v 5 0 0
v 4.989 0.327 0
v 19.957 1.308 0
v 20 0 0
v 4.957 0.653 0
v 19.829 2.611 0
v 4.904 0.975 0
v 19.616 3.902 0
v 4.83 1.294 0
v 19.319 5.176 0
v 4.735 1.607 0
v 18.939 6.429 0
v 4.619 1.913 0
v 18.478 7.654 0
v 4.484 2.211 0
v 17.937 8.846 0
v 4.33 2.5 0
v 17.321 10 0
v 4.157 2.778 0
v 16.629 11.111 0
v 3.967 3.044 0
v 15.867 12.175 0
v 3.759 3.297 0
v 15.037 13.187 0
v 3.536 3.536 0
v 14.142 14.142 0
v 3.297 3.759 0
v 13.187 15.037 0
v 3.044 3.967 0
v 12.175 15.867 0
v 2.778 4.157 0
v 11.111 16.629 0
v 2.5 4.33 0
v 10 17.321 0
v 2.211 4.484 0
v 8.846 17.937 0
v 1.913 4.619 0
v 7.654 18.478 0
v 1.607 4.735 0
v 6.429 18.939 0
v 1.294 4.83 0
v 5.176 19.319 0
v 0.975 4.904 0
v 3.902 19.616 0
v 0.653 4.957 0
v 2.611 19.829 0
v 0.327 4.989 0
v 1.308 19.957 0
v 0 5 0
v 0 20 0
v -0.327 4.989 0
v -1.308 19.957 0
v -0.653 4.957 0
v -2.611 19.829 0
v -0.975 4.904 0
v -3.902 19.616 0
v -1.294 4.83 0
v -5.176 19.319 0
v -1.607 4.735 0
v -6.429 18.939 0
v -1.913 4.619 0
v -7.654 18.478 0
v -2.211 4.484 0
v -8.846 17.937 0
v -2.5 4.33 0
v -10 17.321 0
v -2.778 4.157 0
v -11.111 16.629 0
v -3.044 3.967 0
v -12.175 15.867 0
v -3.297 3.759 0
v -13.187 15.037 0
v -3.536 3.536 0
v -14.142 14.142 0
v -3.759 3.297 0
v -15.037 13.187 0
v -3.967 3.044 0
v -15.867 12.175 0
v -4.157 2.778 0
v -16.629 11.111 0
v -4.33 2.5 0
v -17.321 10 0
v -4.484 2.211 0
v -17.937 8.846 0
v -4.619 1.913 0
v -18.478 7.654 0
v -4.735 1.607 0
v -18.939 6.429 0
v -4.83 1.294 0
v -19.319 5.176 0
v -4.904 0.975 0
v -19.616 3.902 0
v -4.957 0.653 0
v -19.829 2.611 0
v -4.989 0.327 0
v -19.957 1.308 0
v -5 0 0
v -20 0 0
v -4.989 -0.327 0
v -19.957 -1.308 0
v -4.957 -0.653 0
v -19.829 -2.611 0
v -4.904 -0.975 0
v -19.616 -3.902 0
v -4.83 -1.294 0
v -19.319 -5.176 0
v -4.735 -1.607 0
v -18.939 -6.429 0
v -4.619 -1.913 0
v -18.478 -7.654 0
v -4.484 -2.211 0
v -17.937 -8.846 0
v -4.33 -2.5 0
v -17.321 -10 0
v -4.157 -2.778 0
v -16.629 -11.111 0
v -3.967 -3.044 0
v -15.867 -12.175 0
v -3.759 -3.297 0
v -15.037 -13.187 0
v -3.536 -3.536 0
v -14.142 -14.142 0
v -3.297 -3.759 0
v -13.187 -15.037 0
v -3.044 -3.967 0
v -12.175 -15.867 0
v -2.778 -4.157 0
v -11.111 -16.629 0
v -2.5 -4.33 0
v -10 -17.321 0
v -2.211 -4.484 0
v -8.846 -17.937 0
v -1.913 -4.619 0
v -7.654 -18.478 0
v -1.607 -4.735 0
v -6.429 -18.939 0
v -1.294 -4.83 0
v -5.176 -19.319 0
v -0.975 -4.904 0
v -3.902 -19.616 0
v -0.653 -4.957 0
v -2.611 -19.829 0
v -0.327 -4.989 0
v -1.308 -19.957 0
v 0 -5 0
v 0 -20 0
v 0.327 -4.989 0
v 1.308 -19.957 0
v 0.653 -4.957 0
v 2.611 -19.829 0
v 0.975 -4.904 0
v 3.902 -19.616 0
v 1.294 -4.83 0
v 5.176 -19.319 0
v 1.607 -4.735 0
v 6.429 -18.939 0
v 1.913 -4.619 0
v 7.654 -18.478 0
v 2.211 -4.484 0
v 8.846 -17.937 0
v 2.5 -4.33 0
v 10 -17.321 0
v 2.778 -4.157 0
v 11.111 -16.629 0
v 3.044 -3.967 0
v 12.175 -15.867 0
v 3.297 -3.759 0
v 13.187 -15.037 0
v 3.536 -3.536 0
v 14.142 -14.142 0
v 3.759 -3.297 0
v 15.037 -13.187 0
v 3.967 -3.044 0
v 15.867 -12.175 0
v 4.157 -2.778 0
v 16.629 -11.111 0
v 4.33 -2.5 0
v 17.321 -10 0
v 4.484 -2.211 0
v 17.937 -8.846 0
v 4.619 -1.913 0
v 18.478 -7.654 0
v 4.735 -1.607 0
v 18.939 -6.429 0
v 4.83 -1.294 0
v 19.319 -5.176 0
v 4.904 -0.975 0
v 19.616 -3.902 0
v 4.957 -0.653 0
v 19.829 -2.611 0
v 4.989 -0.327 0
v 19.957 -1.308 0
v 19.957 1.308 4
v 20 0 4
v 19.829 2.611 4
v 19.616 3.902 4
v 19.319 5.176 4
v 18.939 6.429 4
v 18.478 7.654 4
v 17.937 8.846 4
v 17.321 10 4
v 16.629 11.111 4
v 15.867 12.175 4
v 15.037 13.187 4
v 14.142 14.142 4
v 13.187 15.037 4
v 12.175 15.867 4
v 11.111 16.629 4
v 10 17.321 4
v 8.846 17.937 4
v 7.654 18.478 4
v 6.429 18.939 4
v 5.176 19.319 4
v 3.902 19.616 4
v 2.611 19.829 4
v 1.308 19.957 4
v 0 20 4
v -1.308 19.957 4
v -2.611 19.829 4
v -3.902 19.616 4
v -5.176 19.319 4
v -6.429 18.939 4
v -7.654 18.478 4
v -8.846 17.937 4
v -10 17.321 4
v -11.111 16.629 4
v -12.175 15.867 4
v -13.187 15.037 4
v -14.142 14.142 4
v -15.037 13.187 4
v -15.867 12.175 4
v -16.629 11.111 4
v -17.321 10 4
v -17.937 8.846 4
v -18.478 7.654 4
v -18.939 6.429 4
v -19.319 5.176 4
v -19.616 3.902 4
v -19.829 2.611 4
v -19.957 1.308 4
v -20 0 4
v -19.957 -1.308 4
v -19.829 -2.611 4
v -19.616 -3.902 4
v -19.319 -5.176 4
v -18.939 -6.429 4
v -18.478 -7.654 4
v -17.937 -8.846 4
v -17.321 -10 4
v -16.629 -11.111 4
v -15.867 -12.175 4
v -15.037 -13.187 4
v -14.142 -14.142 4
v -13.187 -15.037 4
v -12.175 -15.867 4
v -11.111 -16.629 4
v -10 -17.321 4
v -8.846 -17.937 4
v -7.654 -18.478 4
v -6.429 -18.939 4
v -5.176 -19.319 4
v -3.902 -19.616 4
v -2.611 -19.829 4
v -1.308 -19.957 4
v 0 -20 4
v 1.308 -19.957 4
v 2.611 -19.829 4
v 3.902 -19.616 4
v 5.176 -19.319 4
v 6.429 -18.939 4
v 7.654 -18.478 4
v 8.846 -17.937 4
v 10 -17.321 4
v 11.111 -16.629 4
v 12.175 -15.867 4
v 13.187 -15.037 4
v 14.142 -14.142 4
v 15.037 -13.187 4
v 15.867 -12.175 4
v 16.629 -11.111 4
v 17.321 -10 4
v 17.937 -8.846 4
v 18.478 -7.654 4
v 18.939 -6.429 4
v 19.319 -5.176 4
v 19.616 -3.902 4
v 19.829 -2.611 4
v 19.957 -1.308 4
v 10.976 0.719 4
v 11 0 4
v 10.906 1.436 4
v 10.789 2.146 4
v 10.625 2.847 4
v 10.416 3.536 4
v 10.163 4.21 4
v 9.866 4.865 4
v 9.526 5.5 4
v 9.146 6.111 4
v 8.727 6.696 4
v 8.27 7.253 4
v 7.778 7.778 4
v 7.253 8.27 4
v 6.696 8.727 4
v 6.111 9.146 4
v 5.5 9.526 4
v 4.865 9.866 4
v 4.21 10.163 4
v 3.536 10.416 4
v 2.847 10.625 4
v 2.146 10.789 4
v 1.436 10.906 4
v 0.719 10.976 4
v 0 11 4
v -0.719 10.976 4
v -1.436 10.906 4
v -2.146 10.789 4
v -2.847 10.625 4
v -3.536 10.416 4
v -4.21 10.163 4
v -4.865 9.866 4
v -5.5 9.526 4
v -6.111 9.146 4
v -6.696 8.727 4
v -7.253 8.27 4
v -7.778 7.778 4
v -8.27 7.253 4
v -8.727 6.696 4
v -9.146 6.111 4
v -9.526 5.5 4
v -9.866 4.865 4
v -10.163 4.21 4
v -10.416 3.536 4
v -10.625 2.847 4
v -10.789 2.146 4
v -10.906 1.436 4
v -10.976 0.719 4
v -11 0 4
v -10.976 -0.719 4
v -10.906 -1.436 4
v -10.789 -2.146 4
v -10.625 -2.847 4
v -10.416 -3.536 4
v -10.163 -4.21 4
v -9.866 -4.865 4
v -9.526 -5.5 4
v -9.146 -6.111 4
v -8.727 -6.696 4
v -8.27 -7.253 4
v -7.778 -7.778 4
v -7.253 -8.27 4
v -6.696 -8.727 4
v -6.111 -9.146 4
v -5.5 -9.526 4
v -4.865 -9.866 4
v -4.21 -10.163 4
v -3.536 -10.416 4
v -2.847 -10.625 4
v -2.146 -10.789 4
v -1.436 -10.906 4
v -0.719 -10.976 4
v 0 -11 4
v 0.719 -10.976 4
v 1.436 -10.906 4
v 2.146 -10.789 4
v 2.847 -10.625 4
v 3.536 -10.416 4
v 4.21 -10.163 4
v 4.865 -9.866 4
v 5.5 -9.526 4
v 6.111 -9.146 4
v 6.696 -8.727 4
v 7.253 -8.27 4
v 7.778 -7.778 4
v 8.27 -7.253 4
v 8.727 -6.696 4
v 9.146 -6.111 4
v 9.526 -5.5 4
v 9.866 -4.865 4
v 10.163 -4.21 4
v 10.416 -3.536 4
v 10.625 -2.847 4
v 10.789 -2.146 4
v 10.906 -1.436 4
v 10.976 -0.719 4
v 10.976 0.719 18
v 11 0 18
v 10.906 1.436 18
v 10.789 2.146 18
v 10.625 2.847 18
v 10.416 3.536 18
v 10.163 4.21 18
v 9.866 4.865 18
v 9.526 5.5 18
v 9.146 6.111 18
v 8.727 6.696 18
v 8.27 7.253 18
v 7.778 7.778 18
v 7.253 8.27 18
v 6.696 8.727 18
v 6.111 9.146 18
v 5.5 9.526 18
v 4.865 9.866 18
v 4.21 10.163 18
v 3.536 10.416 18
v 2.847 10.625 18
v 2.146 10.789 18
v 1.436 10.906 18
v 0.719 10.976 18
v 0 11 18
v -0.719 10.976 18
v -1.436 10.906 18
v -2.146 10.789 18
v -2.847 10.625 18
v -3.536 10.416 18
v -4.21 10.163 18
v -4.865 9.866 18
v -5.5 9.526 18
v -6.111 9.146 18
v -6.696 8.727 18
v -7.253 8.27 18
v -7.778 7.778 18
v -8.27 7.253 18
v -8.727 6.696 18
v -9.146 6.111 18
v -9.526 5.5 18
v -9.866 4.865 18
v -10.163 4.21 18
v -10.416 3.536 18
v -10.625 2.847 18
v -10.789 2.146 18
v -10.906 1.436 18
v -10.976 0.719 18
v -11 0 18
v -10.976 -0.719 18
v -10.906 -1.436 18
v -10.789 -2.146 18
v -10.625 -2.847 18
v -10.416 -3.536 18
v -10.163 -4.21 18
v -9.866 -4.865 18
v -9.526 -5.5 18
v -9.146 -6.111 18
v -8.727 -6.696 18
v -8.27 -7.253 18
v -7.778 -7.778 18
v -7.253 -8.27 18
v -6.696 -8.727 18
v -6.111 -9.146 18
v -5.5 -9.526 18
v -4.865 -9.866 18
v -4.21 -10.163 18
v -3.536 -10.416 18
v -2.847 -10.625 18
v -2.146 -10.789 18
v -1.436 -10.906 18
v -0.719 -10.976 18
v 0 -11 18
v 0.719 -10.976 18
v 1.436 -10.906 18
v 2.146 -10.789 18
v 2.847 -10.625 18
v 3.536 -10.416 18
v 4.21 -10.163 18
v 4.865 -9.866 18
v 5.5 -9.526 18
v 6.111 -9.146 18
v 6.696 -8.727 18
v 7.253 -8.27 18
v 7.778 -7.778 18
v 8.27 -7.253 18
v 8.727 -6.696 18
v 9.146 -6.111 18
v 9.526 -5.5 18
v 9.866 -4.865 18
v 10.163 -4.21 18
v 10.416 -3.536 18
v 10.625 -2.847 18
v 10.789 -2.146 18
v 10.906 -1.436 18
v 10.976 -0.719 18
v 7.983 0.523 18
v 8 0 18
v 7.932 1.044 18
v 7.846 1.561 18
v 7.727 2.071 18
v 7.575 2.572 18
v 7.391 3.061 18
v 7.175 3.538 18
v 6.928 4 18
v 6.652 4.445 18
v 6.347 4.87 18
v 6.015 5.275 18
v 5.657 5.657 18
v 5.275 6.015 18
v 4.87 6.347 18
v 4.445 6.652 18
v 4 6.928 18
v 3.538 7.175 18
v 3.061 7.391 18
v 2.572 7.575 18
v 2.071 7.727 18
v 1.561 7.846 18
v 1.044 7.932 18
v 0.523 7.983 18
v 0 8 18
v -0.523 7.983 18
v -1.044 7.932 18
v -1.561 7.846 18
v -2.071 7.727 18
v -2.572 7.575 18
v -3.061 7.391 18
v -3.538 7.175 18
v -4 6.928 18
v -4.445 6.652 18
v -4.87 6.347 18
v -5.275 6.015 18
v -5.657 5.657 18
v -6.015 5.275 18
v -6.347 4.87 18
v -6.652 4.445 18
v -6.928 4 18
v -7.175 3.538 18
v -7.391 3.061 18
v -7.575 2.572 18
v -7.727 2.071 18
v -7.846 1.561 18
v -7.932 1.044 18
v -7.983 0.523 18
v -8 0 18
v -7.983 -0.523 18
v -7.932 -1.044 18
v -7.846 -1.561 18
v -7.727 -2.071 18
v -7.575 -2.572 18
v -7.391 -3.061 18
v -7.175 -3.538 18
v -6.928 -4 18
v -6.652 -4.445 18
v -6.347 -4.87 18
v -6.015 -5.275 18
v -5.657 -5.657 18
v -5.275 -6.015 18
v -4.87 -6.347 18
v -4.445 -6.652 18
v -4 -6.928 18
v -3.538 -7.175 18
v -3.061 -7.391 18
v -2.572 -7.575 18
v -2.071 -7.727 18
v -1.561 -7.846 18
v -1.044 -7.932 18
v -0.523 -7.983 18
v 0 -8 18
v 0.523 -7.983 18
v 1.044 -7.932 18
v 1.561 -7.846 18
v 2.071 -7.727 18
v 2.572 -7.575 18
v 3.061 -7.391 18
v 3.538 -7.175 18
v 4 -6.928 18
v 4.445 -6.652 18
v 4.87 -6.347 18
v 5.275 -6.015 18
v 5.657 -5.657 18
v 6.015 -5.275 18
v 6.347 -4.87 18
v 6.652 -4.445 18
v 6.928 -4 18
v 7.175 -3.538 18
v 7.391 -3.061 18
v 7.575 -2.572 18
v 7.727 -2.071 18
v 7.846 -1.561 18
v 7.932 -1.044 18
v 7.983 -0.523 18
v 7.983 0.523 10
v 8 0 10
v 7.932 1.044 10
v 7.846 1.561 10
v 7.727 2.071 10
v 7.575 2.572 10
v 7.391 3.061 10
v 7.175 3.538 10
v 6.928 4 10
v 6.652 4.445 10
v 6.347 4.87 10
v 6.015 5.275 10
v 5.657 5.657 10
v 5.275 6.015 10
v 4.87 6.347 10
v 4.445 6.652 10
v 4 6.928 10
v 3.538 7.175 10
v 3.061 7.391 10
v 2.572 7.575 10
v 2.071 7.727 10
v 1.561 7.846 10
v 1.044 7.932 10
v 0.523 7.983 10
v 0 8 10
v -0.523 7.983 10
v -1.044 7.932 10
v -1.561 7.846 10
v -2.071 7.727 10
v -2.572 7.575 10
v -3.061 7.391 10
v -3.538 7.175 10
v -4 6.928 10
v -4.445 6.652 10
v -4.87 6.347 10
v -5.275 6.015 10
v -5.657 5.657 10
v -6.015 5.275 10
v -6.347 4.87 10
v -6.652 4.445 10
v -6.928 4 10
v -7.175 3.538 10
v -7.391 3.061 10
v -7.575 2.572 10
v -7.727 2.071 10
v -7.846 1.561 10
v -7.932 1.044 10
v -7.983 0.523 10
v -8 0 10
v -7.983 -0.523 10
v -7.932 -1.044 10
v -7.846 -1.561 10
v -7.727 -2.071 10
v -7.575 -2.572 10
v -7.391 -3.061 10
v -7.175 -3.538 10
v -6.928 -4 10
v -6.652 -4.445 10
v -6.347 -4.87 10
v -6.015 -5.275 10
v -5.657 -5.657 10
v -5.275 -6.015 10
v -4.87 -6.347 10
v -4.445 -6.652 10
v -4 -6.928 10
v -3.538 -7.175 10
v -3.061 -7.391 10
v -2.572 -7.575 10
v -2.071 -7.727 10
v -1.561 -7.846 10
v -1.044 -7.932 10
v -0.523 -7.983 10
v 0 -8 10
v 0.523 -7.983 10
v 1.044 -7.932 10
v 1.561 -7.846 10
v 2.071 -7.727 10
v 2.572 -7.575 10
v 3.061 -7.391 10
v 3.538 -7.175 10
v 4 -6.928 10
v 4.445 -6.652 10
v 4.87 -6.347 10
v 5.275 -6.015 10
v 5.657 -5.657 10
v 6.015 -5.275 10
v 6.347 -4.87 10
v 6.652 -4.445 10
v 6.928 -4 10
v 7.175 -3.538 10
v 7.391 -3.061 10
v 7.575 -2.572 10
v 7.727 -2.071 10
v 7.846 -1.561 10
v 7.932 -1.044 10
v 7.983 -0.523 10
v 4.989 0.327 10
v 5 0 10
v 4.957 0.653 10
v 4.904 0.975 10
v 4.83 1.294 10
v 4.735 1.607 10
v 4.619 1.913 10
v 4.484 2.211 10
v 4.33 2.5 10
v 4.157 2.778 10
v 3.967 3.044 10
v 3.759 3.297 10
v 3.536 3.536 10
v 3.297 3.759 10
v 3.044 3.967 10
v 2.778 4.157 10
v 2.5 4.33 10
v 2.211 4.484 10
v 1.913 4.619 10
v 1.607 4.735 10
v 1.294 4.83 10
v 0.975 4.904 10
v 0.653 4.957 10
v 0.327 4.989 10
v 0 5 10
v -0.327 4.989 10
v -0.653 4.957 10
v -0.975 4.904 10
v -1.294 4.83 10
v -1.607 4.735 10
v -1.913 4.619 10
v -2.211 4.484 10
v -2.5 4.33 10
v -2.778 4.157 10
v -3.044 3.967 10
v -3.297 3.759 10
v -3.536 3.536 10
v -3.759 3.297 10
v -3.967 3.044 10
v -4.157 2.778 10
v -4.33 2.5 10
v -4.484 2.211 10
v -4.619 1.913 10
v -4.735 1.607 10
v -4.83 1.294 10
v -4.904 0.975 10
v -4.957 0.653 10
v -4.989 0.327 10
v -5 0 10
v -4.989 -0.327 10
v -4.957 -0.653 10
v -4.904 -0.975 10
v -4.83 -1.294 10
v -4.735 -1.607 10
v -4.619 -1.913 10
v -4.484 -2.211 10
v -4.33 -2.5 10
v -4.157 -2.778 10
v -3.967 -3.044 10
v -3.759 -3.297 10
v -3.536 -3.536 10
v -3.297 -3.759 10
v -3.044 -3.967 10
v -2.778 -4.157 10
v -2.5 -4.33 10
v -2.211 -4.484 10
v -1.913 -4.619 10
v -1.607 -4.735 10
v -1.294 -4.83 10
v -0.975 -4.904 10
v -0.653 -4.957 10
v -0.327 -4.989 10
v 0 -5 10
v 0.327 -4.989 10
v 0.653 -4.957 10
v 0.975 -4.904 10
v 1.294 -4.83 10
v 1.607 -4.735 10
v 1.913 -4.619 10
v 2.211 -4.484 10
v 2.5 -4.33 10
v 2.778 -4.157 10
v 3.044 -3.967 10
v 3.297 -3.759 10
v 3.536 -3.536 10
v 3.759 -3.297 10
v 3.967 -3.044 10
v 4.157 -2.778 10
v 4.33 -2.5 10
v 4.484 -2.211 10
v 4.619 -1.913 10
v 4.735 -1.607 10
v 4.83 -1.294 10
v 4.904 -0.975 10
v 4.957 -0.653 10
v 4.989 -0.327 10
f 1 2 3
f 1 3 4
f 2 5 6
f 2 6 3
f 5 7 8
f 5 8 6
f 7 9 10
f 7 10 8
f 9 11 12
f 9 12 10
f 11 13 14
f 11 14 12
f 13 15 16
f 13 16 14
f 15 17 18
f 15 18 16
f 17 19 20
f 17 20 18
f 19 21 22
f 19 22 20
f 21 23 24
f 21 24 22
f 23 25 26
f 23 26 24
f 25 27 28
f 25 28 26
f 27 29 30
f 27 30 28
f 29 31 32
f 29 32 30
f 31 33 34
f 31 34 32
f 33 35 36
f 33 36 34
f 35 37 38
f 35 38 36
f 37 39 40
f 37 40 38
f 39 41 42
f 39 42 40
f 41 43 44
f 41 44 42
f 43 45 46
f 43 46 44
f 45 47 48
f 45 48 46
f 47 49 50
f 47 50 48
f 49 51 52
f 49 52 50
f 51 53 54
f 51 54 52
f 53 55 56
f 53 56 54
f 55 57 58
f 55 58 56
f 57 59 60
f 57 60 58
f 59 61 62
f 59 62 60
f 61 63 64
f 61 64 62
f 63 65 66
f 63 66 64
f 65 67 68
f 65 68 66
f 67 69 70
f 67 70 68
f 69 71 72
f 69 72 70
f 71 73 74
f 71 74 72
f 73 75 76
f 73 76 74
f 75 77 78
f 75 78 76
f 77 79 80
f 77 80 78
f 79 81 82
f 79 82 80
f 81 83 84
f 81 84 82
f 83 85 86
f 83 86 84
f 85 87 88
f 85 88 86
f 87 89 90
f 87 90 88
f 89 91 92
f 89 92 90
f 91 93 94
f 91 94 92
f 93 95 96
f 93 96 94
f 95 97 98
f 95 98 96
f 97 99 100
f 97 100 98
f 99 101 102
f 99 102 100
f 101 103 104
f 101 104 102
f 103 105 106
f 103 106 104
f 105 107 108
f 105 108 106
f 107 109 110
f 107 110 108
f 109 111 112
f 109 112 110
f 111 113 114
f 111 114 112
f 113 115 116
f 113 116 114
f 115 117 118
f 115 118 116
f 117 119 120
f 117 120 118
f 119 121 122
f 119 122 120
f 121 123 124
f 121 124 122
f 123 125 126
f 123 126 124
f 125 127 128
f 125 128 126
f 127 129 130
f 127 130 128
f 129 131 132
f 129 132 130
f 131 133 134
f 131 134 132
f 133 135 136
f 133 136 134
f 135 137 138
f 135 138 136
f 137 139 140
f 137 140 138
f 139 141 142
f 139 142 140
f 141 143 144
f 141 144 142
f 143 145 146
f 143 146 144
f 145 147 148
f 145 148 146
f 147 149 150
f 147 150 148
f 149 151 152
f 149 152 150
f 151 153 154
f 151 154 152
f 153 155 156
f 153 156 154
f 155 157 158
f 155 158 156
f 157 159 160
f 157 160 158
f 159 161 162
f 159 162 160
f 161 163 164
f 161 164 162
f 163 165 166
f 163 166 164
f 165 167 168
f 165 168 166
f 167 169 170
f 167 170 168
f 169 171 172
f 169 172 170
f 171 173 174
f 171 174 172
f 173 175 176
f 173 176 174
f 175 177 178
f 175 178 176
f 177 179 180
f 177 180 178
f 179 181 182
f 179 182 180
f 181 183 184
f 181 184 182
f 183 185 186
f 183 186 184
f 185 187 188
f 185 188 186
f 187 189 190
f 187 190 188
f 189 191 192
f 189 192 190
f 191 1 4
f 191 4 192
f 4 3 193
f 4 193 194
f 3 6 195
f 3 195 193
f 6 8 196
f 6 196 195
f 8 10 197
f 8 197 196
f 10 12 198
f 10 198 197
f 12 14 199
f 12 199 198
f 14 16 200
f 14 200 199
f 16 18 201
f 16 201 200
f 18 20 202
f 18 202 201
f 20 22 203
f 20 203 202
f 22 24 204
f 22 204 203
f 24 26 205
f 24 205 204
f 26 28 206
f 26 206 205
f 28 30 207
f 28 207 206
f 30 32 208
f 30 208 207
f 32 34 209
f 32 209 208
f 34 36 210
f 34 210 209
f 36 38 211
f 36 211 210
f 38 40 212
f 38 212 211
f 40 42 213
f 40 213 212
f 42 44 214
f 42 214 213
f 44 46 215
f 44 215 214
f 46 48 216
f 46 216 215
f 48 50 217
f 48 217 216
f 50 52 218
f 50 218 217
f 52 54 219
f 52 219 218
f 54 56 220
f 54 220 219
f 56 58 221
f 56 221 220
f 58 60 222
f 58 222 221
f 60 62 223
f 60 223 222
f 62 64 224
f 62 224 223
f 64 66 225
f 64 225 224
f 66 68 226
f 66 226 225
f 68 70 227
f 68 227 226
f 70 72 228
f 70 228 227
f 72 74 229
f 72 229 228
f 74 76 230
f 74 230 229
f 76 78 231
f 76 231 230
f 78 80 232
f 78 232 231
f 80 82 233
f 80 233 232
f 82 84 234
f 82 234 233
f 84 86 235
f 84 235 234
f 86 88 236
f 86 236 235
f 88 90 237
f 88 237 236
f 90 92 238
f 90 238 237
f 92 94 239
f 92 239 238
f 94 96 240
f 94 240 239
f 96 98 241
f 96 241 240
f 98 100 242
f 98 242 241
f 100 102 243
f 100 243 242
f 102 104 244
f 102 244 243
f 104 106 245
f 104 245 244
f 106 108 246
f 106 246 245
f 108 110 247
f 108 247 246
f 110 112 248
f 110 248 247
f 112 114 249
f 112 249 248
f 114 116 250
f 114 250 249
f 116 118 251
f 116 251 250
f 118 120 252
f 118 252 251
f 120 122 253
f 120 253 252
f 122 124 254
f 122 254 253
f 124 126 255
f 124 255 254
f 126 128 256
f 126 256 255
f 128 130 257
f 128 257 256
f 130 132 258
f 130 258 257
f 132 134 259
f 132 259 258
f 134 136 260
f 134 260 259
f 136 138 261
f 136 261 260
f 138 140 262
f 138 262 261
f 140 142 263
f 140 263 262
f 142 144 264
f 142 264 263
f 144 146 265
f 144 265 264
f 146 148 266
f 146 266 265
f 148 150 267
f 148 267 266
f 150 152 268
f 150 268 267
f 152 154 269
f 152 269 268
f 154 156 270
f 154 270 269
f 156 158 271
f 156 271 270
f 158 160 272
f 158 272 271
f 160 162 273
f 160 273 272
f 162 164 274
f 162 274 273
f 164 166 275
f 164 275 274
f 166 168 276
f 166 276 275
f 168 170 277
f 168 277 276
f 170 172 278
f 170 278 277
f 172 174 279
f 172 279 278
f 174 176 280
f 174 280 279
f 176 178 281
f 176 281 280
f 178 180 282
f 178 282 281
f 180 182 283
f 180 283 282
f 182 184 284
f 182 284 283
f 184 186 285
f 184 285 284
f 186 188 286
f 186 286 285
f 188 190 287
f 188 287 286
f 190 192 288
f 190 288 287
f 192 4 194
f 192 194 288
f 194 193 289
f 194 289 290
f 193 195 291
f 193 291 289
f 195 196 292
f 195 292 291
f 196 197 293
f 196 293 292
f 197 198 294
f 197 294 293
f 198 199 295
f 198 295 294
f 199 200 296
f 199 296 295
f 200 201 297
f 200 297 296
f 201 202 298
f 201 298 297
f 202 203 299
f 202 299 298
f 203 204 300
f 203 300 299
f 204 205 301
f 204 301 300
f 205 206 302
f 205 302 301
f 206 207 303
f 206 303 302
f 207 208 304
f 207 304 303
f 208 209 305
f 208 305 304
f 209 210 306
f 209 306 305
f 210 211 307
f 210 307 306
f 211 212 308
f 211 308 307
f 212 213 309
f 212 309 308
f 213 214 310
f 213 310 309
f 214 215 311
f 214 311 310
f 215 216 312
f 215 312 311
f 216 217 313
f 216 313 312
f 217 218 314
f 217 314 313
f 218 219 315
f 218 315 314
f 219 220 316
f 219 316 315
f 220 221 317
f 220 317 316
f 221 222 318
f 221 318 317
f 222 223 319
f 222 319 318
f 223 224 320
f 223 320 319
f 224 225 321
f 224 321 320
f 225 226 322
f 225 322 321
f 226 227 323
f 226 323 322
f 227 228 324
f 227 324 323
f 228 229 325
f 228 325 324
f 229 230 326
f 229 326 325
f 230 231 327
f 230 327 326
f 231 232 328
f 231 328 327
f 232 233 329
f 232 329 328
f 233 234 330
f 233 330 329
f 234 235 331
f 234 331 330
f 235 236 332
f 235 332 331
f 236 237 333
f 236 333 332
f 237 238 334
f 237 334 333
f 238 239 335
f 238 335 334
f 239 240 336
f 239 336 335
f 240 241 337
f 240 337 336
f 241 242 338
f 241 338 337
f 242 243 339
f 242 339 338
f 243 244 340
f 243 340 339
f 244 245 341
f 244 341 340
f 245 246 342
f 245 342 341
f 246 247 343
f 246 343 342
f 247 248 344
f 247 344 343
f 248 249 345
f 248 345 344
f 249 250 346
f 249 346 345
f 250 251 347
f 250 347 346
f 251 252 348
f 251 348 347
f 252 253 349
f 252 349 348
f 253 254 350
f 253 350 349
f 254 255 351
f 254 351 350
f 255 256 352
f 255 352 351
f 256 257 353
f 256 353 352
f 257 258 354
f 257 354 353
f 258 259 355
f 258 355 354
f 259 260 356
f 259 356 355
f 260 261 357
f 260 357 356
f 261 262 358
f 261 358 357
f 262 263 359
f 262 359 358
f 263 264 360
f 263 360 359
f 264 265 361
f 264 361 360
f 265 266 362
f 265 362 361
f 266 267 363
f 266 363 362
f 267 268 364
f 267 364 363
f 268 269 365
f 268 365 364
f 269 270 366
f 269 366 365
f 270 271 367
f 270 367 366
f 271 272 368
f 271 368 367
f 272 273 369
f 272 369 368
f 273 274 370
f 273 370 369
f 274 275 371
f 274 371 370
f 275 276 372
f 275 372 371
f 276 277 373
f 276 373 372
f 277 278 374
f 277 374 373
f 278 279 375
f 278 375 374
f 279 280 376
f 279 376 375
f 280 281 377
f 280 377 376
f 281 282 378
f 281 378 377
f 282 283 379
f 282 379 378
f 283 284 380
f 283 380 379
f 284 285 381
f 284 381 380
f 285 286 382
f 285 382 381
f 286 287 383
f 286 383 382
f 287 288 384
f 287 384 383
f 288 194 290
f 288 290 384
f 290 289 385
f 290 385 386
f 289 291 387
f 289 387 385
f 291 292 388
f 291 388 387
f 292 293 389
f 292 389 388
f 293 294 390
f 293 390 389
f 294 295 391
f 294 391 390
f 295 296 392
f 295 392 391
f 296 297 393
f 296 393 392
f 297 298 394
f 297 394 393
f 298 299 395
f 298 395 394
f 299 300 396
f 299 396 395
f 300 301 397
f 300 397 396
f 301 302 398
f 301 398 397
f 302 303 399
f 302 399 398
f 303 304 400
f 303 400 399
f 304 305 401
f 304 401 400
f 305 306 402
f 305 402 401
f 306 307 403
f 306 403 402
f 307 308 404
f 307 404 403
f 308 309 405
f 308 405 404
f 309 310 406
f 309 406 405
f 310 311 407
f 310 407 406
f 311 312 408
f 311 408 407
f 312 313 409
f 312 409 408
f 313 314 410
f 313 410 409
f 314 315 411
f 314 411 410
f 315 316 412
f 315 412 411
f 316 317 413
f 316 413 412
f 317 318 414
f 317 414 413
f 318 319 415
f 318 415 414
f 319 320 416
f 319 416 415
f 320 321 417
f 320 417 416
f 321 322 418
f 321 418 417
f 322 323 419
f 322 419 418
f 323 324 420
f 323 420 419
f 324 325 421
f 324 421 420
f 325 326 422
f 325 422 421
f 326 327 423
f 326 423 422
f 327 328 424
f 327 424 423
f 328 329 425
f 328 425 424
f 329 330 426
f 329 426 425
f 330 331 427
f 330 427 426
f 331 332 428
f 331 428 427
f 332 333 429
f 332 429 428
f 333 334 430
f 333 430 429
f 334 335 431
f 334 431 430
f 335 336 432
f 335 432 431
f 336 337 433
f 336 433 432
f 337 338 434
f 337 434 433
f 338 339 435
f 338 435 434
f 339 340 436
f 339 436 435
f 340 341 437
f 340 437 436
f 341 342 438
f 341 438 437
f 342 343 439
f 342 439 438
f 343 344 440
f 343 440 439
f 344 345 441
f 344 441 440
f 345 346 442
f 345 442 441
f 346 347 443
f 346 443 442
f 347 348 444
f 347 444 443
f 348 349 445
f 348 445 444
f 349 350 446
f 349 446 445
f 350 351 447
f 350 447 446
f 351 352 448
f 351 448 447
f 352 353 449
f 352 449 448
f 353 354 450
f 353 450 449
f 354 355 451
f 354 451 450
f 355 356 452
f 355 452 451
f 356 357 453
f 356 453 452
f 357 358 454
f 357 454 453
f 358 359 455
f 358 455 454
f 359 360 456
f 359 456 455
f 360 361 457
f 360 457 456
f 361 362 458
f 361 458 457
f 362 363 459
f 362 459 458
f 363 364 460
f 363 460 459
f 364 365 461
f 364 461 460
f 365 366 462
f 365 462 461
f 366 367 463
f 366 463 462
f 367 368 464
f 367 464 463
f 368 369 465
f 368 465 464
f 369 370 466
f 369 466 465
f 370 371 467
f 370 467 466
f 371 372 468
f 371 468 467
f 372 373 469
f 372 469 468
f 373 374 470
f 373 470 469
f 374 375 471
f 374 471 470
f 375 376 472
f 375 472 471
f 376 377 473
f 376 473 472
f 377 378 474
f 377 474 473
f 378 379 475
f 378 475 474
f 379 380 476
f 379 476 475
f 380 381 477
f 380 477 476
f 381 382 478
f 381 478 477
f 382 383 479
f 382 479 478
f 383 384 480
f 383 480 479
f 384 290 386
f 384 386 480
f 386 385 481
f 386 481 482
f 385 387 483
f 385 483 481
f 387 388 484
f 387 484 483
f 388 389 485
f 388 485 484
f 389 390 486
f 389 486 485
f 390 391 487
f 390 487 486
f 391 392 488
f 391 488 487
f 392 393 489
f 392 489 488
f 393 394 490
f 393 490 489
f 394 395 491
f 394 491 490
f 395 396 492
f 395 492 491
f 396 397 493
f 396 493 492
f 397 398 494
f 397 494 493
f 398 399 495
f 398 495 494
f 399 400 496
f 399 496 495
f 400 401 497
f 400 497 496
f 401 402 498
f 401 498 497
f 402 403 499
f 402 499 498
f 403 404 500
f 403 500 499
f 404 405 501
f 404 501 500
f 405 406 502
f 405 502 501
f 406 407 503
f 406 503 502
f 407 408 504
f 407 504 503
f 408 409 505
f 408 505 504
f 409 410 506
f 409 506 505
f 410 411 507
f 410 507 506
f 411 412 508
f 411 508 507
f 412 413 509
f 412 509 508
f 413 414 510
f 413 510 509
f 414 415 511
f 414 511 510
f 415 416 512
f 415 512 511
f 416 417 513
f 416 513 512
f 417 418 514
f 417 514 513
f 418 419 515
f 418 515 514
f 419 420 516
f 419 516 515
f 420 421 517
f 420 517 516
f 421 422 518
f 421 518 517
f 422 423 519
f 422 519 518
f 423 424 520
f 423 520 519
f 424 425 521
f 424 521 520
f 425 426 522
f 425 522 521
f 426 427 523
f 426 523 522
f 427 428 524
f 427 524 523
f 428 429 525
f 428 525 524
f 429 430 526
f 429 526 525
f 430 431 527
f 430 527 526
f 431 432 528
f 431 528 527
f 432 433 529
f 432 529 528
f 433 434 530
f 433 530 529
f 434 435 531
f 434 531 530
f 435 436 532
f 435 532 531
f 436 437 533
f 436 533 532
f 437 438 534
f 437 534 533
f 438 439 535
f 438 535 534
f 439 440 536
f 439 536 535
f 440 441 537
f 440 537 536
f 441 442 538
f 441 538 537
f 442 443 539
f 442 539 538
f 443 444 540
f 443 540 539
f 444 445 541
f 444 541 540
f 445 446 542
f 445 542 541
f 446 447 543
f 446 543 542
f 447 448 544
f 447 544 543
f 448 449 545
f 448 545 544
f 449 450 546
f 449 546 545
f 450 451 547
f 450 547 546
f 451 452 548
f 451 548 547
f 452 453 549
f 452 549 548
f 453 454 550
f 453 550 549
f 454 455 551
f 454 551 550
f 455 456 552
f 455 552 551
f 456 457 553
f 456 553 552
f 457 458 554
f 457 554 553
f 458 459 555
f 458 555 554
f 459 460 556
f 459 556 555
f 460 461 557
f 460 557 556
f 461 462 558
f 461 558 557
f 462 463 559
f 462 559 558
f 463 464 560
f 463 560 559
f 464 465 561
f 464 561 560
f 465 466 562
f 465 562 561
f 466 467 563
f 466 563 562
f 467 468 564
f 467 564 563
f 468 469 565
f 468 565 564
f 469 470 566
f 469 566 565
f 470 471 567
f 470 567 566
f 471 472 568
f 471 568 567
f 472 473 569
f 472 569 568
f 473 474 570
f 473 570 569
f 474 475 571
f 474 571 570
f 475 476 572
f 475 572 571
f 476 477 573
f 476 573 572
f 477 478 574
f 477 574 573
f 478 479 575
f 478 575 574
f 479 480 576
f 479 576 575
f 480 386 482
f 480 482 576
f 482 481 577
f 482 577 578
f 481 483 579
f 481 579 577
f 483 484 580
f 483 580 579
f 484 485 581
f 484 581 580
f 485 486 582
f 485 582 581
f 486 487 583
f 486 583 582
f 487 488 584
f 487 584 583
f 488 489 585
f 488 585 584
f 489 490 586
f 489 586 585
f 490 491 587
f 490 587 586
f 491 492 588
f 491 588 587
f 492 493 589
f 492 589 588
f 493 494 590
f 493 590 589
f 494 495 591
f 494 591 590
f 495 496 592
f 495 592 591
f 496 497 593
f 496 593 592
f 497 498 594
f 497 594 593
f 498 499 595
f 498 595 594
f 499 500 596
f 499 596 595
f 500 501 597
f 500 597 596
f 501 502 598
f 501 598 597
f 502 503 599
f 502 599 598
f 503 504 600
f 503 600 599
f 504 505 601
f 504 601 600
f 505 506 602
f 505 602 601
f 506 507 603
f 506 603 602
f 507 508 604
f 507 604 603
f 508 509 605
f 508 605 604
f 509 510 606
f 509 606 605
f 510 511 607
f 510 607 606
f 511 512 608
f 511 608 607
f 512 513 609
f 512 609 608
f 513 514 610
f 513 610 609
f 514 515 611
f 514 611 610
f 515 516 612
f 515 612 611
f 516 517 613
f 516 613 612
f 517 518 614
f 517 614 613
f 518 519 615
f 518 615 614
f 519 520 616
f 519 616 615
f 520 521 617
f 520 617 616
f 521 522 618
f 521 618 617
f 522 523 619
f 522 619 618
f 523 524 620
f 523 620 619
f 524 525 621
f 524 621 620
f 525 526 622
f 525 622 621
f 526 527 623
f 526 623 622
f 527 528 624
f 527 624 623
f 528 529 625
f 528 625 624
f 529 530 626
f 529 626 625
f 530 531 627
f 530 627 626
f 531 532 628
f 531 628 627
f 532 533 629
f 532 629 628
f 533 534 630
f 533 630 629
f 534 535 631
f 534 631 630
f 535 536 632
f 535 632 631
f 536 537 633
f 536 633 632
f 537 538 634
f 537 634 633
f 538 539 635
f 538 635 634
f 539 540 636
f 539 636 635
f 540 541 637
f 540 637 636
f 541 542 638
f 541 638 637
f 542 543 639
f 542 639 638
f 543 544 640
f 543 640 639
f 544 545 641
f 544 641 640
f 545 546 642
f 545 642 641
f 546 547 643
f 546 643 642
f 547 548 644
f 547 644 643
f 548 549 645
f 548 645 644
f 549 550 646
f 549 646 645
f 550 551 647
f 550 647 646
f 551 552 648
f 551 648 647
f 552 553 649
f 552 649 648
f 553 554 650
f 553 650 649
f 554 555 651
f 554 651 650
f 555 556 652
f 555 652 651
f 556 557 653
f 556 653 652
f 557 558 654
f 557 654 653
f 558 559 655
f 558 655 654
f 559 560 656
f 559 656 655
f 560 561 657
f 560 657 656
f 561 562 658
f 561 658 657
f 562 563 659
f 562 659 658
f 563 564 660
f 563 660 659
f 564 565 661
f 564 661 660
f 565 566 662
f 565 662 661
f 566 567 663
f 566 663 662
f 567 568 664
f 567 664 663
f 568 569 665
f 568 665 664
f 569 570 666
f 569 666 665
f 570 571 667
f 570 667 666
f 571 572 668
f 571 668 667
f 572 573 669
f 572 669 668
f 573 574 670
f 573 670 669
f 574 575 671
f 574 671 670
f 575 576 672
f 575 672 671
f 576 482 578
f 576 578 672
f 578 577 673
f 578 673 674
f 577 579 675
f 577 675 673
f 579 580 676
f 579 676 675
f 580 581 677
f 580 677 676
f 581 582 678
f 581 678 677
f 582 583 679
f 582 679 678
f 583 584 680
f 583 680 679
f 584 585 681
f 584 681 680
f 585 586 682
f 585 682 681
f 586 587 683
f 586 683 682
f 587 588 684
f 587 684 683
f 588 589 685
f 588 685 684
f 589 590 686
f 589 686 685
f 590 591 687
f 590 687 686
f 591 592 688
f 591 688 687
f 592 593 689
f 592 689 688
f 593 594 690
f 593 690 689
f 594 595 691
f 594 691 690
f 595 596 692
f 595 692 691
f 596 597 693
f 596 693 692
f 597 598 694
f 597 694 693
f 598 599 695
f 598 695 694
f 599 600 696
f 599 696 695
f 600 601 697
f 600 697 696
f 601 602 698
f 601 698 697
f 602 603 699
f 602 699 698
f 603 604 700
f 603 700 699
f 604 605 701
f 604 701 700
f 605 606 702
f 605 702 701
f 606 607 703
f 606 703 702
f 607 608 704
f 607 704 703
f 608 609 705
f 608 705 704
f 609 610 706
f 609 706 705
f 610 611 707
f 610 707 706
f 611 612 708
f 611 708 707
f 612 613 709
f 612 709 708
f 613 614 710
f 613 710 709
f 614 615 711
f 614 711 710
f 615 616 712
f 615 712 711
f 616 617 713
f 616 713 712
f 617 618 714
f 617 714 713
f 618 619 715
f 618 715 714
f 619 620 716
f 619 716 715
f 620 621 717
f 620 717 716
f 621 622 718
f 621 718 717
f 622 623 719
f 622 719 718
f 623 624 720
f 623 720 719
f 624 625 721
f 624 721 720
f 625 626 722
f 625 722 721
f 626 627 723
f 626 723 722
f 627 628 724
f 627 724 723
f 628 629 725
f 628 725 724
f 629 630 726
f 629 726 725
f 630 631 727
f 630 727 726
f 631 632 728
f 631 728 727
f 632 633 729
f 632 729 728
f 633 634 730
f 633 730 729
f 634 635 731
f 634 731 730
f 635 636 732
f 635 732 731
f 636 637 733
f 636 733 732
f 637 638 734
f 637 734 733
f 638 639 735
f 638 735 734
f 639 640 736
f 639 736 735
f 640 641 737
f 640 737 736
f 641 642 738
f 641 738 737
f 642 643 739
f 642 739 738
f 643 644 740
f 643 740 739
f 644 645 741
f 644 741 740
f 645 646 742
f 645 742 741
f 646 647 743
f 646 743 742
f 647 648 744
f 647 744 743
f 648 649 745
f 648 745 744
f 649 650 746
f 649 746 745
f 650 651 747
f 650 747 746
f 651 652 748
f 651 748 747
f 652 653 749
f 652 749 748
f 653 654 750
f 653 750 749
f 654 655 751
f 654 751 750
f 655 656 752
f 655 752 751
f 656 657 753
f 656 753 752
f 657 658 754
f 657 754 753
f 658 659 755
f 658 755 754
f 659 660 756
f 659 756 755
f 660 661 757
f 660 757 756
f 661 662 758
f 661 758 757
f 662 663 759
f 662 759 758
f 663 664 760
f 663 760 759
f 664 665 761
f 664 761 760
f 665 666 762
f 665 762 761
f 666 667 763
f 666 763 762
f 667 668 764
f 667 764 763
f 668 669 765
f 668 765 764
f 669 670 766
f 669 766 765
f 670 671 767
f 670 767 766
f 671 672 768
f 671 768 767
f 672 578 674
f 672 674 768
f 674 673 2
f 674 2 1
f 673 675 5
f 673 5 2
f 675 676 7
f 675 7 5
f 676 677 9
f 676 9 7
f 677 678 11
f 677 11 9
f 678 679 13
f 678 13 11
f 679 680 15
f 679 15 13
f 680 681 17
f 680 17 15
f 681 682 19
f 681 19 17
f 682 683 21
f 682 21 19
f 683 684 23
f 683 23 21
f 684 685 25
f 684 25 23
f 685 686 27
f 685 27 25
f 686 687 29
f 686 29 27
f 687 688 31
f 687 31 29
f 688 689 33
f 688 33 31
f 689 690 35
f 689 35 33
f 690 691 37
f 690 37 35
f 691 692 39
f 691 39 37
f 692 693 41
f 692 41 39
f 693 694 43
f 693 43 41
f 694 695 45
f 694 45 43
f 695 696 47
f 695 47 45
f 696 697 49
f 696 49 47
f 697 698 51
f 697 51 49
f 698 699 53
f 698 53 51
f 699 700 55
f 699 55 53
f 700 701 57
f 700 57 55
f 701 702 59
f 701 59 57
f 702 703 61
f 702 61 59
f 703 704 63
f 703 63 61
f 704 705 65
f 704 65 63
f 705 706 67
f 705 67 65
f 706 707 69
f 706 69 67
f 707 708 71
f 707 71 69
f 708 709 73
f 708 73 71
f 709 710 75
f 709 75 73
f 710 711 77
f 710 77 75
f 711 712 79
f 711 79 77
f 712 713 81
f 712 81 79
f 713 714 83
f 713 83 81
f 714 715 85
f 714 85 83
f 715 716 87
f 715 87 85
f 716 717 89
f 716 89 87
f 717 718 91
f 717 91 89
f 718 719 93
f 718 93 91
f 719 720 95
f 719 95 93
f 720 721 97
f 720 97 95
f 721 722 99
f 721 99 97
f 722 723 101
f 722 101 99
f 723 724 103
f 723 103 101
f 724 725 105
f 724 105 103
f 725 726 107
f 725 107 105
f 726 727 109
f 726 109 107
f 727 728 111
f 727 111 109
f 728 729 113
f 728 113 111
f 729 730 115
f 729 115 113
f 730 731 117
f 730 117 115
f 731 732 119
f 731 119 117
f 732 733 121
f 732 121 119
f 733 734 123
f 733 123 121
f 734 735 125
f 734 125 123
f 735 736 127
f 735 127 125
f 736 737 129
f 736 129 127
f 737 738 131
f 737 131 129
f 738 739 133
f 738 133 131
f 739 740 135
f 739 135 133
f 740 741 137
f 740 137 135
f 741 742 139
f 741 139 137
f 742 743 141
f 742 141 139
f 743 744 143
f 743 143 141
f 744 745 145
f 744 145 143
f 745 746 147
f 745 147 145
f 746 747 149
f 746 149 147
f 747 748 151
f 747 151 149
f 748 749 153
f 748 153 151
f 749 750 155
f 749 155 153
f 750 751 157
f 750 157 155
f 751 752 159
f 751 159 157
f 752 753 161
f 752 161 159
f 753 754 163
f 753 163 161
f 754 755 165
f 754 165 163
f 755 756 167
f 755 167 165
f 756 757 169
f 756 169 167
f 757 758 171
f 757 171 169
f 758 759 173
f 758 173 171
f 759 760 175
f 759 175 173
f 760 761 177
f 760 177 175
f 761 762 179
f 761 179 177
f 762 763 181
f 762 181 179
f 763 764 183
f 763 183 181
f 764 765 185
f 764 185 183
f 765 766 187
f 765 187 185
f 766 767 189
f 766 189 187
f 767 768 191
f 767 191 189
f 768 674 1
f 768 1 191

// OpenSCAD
// Original MechIntel educational model. CC0-1.0. Units: mm.
// Not a standardized or load-rated component.
$fn=96;
// Section points: [radius, height], mm. Edit to change the profile.
section=[[5, 0], [20, 0], [20, 4], [11, 4], [11, 18], [8, 18], [8, 10], [5, 10]];
rotate_extrude($fn=96) polygon(points=section);
